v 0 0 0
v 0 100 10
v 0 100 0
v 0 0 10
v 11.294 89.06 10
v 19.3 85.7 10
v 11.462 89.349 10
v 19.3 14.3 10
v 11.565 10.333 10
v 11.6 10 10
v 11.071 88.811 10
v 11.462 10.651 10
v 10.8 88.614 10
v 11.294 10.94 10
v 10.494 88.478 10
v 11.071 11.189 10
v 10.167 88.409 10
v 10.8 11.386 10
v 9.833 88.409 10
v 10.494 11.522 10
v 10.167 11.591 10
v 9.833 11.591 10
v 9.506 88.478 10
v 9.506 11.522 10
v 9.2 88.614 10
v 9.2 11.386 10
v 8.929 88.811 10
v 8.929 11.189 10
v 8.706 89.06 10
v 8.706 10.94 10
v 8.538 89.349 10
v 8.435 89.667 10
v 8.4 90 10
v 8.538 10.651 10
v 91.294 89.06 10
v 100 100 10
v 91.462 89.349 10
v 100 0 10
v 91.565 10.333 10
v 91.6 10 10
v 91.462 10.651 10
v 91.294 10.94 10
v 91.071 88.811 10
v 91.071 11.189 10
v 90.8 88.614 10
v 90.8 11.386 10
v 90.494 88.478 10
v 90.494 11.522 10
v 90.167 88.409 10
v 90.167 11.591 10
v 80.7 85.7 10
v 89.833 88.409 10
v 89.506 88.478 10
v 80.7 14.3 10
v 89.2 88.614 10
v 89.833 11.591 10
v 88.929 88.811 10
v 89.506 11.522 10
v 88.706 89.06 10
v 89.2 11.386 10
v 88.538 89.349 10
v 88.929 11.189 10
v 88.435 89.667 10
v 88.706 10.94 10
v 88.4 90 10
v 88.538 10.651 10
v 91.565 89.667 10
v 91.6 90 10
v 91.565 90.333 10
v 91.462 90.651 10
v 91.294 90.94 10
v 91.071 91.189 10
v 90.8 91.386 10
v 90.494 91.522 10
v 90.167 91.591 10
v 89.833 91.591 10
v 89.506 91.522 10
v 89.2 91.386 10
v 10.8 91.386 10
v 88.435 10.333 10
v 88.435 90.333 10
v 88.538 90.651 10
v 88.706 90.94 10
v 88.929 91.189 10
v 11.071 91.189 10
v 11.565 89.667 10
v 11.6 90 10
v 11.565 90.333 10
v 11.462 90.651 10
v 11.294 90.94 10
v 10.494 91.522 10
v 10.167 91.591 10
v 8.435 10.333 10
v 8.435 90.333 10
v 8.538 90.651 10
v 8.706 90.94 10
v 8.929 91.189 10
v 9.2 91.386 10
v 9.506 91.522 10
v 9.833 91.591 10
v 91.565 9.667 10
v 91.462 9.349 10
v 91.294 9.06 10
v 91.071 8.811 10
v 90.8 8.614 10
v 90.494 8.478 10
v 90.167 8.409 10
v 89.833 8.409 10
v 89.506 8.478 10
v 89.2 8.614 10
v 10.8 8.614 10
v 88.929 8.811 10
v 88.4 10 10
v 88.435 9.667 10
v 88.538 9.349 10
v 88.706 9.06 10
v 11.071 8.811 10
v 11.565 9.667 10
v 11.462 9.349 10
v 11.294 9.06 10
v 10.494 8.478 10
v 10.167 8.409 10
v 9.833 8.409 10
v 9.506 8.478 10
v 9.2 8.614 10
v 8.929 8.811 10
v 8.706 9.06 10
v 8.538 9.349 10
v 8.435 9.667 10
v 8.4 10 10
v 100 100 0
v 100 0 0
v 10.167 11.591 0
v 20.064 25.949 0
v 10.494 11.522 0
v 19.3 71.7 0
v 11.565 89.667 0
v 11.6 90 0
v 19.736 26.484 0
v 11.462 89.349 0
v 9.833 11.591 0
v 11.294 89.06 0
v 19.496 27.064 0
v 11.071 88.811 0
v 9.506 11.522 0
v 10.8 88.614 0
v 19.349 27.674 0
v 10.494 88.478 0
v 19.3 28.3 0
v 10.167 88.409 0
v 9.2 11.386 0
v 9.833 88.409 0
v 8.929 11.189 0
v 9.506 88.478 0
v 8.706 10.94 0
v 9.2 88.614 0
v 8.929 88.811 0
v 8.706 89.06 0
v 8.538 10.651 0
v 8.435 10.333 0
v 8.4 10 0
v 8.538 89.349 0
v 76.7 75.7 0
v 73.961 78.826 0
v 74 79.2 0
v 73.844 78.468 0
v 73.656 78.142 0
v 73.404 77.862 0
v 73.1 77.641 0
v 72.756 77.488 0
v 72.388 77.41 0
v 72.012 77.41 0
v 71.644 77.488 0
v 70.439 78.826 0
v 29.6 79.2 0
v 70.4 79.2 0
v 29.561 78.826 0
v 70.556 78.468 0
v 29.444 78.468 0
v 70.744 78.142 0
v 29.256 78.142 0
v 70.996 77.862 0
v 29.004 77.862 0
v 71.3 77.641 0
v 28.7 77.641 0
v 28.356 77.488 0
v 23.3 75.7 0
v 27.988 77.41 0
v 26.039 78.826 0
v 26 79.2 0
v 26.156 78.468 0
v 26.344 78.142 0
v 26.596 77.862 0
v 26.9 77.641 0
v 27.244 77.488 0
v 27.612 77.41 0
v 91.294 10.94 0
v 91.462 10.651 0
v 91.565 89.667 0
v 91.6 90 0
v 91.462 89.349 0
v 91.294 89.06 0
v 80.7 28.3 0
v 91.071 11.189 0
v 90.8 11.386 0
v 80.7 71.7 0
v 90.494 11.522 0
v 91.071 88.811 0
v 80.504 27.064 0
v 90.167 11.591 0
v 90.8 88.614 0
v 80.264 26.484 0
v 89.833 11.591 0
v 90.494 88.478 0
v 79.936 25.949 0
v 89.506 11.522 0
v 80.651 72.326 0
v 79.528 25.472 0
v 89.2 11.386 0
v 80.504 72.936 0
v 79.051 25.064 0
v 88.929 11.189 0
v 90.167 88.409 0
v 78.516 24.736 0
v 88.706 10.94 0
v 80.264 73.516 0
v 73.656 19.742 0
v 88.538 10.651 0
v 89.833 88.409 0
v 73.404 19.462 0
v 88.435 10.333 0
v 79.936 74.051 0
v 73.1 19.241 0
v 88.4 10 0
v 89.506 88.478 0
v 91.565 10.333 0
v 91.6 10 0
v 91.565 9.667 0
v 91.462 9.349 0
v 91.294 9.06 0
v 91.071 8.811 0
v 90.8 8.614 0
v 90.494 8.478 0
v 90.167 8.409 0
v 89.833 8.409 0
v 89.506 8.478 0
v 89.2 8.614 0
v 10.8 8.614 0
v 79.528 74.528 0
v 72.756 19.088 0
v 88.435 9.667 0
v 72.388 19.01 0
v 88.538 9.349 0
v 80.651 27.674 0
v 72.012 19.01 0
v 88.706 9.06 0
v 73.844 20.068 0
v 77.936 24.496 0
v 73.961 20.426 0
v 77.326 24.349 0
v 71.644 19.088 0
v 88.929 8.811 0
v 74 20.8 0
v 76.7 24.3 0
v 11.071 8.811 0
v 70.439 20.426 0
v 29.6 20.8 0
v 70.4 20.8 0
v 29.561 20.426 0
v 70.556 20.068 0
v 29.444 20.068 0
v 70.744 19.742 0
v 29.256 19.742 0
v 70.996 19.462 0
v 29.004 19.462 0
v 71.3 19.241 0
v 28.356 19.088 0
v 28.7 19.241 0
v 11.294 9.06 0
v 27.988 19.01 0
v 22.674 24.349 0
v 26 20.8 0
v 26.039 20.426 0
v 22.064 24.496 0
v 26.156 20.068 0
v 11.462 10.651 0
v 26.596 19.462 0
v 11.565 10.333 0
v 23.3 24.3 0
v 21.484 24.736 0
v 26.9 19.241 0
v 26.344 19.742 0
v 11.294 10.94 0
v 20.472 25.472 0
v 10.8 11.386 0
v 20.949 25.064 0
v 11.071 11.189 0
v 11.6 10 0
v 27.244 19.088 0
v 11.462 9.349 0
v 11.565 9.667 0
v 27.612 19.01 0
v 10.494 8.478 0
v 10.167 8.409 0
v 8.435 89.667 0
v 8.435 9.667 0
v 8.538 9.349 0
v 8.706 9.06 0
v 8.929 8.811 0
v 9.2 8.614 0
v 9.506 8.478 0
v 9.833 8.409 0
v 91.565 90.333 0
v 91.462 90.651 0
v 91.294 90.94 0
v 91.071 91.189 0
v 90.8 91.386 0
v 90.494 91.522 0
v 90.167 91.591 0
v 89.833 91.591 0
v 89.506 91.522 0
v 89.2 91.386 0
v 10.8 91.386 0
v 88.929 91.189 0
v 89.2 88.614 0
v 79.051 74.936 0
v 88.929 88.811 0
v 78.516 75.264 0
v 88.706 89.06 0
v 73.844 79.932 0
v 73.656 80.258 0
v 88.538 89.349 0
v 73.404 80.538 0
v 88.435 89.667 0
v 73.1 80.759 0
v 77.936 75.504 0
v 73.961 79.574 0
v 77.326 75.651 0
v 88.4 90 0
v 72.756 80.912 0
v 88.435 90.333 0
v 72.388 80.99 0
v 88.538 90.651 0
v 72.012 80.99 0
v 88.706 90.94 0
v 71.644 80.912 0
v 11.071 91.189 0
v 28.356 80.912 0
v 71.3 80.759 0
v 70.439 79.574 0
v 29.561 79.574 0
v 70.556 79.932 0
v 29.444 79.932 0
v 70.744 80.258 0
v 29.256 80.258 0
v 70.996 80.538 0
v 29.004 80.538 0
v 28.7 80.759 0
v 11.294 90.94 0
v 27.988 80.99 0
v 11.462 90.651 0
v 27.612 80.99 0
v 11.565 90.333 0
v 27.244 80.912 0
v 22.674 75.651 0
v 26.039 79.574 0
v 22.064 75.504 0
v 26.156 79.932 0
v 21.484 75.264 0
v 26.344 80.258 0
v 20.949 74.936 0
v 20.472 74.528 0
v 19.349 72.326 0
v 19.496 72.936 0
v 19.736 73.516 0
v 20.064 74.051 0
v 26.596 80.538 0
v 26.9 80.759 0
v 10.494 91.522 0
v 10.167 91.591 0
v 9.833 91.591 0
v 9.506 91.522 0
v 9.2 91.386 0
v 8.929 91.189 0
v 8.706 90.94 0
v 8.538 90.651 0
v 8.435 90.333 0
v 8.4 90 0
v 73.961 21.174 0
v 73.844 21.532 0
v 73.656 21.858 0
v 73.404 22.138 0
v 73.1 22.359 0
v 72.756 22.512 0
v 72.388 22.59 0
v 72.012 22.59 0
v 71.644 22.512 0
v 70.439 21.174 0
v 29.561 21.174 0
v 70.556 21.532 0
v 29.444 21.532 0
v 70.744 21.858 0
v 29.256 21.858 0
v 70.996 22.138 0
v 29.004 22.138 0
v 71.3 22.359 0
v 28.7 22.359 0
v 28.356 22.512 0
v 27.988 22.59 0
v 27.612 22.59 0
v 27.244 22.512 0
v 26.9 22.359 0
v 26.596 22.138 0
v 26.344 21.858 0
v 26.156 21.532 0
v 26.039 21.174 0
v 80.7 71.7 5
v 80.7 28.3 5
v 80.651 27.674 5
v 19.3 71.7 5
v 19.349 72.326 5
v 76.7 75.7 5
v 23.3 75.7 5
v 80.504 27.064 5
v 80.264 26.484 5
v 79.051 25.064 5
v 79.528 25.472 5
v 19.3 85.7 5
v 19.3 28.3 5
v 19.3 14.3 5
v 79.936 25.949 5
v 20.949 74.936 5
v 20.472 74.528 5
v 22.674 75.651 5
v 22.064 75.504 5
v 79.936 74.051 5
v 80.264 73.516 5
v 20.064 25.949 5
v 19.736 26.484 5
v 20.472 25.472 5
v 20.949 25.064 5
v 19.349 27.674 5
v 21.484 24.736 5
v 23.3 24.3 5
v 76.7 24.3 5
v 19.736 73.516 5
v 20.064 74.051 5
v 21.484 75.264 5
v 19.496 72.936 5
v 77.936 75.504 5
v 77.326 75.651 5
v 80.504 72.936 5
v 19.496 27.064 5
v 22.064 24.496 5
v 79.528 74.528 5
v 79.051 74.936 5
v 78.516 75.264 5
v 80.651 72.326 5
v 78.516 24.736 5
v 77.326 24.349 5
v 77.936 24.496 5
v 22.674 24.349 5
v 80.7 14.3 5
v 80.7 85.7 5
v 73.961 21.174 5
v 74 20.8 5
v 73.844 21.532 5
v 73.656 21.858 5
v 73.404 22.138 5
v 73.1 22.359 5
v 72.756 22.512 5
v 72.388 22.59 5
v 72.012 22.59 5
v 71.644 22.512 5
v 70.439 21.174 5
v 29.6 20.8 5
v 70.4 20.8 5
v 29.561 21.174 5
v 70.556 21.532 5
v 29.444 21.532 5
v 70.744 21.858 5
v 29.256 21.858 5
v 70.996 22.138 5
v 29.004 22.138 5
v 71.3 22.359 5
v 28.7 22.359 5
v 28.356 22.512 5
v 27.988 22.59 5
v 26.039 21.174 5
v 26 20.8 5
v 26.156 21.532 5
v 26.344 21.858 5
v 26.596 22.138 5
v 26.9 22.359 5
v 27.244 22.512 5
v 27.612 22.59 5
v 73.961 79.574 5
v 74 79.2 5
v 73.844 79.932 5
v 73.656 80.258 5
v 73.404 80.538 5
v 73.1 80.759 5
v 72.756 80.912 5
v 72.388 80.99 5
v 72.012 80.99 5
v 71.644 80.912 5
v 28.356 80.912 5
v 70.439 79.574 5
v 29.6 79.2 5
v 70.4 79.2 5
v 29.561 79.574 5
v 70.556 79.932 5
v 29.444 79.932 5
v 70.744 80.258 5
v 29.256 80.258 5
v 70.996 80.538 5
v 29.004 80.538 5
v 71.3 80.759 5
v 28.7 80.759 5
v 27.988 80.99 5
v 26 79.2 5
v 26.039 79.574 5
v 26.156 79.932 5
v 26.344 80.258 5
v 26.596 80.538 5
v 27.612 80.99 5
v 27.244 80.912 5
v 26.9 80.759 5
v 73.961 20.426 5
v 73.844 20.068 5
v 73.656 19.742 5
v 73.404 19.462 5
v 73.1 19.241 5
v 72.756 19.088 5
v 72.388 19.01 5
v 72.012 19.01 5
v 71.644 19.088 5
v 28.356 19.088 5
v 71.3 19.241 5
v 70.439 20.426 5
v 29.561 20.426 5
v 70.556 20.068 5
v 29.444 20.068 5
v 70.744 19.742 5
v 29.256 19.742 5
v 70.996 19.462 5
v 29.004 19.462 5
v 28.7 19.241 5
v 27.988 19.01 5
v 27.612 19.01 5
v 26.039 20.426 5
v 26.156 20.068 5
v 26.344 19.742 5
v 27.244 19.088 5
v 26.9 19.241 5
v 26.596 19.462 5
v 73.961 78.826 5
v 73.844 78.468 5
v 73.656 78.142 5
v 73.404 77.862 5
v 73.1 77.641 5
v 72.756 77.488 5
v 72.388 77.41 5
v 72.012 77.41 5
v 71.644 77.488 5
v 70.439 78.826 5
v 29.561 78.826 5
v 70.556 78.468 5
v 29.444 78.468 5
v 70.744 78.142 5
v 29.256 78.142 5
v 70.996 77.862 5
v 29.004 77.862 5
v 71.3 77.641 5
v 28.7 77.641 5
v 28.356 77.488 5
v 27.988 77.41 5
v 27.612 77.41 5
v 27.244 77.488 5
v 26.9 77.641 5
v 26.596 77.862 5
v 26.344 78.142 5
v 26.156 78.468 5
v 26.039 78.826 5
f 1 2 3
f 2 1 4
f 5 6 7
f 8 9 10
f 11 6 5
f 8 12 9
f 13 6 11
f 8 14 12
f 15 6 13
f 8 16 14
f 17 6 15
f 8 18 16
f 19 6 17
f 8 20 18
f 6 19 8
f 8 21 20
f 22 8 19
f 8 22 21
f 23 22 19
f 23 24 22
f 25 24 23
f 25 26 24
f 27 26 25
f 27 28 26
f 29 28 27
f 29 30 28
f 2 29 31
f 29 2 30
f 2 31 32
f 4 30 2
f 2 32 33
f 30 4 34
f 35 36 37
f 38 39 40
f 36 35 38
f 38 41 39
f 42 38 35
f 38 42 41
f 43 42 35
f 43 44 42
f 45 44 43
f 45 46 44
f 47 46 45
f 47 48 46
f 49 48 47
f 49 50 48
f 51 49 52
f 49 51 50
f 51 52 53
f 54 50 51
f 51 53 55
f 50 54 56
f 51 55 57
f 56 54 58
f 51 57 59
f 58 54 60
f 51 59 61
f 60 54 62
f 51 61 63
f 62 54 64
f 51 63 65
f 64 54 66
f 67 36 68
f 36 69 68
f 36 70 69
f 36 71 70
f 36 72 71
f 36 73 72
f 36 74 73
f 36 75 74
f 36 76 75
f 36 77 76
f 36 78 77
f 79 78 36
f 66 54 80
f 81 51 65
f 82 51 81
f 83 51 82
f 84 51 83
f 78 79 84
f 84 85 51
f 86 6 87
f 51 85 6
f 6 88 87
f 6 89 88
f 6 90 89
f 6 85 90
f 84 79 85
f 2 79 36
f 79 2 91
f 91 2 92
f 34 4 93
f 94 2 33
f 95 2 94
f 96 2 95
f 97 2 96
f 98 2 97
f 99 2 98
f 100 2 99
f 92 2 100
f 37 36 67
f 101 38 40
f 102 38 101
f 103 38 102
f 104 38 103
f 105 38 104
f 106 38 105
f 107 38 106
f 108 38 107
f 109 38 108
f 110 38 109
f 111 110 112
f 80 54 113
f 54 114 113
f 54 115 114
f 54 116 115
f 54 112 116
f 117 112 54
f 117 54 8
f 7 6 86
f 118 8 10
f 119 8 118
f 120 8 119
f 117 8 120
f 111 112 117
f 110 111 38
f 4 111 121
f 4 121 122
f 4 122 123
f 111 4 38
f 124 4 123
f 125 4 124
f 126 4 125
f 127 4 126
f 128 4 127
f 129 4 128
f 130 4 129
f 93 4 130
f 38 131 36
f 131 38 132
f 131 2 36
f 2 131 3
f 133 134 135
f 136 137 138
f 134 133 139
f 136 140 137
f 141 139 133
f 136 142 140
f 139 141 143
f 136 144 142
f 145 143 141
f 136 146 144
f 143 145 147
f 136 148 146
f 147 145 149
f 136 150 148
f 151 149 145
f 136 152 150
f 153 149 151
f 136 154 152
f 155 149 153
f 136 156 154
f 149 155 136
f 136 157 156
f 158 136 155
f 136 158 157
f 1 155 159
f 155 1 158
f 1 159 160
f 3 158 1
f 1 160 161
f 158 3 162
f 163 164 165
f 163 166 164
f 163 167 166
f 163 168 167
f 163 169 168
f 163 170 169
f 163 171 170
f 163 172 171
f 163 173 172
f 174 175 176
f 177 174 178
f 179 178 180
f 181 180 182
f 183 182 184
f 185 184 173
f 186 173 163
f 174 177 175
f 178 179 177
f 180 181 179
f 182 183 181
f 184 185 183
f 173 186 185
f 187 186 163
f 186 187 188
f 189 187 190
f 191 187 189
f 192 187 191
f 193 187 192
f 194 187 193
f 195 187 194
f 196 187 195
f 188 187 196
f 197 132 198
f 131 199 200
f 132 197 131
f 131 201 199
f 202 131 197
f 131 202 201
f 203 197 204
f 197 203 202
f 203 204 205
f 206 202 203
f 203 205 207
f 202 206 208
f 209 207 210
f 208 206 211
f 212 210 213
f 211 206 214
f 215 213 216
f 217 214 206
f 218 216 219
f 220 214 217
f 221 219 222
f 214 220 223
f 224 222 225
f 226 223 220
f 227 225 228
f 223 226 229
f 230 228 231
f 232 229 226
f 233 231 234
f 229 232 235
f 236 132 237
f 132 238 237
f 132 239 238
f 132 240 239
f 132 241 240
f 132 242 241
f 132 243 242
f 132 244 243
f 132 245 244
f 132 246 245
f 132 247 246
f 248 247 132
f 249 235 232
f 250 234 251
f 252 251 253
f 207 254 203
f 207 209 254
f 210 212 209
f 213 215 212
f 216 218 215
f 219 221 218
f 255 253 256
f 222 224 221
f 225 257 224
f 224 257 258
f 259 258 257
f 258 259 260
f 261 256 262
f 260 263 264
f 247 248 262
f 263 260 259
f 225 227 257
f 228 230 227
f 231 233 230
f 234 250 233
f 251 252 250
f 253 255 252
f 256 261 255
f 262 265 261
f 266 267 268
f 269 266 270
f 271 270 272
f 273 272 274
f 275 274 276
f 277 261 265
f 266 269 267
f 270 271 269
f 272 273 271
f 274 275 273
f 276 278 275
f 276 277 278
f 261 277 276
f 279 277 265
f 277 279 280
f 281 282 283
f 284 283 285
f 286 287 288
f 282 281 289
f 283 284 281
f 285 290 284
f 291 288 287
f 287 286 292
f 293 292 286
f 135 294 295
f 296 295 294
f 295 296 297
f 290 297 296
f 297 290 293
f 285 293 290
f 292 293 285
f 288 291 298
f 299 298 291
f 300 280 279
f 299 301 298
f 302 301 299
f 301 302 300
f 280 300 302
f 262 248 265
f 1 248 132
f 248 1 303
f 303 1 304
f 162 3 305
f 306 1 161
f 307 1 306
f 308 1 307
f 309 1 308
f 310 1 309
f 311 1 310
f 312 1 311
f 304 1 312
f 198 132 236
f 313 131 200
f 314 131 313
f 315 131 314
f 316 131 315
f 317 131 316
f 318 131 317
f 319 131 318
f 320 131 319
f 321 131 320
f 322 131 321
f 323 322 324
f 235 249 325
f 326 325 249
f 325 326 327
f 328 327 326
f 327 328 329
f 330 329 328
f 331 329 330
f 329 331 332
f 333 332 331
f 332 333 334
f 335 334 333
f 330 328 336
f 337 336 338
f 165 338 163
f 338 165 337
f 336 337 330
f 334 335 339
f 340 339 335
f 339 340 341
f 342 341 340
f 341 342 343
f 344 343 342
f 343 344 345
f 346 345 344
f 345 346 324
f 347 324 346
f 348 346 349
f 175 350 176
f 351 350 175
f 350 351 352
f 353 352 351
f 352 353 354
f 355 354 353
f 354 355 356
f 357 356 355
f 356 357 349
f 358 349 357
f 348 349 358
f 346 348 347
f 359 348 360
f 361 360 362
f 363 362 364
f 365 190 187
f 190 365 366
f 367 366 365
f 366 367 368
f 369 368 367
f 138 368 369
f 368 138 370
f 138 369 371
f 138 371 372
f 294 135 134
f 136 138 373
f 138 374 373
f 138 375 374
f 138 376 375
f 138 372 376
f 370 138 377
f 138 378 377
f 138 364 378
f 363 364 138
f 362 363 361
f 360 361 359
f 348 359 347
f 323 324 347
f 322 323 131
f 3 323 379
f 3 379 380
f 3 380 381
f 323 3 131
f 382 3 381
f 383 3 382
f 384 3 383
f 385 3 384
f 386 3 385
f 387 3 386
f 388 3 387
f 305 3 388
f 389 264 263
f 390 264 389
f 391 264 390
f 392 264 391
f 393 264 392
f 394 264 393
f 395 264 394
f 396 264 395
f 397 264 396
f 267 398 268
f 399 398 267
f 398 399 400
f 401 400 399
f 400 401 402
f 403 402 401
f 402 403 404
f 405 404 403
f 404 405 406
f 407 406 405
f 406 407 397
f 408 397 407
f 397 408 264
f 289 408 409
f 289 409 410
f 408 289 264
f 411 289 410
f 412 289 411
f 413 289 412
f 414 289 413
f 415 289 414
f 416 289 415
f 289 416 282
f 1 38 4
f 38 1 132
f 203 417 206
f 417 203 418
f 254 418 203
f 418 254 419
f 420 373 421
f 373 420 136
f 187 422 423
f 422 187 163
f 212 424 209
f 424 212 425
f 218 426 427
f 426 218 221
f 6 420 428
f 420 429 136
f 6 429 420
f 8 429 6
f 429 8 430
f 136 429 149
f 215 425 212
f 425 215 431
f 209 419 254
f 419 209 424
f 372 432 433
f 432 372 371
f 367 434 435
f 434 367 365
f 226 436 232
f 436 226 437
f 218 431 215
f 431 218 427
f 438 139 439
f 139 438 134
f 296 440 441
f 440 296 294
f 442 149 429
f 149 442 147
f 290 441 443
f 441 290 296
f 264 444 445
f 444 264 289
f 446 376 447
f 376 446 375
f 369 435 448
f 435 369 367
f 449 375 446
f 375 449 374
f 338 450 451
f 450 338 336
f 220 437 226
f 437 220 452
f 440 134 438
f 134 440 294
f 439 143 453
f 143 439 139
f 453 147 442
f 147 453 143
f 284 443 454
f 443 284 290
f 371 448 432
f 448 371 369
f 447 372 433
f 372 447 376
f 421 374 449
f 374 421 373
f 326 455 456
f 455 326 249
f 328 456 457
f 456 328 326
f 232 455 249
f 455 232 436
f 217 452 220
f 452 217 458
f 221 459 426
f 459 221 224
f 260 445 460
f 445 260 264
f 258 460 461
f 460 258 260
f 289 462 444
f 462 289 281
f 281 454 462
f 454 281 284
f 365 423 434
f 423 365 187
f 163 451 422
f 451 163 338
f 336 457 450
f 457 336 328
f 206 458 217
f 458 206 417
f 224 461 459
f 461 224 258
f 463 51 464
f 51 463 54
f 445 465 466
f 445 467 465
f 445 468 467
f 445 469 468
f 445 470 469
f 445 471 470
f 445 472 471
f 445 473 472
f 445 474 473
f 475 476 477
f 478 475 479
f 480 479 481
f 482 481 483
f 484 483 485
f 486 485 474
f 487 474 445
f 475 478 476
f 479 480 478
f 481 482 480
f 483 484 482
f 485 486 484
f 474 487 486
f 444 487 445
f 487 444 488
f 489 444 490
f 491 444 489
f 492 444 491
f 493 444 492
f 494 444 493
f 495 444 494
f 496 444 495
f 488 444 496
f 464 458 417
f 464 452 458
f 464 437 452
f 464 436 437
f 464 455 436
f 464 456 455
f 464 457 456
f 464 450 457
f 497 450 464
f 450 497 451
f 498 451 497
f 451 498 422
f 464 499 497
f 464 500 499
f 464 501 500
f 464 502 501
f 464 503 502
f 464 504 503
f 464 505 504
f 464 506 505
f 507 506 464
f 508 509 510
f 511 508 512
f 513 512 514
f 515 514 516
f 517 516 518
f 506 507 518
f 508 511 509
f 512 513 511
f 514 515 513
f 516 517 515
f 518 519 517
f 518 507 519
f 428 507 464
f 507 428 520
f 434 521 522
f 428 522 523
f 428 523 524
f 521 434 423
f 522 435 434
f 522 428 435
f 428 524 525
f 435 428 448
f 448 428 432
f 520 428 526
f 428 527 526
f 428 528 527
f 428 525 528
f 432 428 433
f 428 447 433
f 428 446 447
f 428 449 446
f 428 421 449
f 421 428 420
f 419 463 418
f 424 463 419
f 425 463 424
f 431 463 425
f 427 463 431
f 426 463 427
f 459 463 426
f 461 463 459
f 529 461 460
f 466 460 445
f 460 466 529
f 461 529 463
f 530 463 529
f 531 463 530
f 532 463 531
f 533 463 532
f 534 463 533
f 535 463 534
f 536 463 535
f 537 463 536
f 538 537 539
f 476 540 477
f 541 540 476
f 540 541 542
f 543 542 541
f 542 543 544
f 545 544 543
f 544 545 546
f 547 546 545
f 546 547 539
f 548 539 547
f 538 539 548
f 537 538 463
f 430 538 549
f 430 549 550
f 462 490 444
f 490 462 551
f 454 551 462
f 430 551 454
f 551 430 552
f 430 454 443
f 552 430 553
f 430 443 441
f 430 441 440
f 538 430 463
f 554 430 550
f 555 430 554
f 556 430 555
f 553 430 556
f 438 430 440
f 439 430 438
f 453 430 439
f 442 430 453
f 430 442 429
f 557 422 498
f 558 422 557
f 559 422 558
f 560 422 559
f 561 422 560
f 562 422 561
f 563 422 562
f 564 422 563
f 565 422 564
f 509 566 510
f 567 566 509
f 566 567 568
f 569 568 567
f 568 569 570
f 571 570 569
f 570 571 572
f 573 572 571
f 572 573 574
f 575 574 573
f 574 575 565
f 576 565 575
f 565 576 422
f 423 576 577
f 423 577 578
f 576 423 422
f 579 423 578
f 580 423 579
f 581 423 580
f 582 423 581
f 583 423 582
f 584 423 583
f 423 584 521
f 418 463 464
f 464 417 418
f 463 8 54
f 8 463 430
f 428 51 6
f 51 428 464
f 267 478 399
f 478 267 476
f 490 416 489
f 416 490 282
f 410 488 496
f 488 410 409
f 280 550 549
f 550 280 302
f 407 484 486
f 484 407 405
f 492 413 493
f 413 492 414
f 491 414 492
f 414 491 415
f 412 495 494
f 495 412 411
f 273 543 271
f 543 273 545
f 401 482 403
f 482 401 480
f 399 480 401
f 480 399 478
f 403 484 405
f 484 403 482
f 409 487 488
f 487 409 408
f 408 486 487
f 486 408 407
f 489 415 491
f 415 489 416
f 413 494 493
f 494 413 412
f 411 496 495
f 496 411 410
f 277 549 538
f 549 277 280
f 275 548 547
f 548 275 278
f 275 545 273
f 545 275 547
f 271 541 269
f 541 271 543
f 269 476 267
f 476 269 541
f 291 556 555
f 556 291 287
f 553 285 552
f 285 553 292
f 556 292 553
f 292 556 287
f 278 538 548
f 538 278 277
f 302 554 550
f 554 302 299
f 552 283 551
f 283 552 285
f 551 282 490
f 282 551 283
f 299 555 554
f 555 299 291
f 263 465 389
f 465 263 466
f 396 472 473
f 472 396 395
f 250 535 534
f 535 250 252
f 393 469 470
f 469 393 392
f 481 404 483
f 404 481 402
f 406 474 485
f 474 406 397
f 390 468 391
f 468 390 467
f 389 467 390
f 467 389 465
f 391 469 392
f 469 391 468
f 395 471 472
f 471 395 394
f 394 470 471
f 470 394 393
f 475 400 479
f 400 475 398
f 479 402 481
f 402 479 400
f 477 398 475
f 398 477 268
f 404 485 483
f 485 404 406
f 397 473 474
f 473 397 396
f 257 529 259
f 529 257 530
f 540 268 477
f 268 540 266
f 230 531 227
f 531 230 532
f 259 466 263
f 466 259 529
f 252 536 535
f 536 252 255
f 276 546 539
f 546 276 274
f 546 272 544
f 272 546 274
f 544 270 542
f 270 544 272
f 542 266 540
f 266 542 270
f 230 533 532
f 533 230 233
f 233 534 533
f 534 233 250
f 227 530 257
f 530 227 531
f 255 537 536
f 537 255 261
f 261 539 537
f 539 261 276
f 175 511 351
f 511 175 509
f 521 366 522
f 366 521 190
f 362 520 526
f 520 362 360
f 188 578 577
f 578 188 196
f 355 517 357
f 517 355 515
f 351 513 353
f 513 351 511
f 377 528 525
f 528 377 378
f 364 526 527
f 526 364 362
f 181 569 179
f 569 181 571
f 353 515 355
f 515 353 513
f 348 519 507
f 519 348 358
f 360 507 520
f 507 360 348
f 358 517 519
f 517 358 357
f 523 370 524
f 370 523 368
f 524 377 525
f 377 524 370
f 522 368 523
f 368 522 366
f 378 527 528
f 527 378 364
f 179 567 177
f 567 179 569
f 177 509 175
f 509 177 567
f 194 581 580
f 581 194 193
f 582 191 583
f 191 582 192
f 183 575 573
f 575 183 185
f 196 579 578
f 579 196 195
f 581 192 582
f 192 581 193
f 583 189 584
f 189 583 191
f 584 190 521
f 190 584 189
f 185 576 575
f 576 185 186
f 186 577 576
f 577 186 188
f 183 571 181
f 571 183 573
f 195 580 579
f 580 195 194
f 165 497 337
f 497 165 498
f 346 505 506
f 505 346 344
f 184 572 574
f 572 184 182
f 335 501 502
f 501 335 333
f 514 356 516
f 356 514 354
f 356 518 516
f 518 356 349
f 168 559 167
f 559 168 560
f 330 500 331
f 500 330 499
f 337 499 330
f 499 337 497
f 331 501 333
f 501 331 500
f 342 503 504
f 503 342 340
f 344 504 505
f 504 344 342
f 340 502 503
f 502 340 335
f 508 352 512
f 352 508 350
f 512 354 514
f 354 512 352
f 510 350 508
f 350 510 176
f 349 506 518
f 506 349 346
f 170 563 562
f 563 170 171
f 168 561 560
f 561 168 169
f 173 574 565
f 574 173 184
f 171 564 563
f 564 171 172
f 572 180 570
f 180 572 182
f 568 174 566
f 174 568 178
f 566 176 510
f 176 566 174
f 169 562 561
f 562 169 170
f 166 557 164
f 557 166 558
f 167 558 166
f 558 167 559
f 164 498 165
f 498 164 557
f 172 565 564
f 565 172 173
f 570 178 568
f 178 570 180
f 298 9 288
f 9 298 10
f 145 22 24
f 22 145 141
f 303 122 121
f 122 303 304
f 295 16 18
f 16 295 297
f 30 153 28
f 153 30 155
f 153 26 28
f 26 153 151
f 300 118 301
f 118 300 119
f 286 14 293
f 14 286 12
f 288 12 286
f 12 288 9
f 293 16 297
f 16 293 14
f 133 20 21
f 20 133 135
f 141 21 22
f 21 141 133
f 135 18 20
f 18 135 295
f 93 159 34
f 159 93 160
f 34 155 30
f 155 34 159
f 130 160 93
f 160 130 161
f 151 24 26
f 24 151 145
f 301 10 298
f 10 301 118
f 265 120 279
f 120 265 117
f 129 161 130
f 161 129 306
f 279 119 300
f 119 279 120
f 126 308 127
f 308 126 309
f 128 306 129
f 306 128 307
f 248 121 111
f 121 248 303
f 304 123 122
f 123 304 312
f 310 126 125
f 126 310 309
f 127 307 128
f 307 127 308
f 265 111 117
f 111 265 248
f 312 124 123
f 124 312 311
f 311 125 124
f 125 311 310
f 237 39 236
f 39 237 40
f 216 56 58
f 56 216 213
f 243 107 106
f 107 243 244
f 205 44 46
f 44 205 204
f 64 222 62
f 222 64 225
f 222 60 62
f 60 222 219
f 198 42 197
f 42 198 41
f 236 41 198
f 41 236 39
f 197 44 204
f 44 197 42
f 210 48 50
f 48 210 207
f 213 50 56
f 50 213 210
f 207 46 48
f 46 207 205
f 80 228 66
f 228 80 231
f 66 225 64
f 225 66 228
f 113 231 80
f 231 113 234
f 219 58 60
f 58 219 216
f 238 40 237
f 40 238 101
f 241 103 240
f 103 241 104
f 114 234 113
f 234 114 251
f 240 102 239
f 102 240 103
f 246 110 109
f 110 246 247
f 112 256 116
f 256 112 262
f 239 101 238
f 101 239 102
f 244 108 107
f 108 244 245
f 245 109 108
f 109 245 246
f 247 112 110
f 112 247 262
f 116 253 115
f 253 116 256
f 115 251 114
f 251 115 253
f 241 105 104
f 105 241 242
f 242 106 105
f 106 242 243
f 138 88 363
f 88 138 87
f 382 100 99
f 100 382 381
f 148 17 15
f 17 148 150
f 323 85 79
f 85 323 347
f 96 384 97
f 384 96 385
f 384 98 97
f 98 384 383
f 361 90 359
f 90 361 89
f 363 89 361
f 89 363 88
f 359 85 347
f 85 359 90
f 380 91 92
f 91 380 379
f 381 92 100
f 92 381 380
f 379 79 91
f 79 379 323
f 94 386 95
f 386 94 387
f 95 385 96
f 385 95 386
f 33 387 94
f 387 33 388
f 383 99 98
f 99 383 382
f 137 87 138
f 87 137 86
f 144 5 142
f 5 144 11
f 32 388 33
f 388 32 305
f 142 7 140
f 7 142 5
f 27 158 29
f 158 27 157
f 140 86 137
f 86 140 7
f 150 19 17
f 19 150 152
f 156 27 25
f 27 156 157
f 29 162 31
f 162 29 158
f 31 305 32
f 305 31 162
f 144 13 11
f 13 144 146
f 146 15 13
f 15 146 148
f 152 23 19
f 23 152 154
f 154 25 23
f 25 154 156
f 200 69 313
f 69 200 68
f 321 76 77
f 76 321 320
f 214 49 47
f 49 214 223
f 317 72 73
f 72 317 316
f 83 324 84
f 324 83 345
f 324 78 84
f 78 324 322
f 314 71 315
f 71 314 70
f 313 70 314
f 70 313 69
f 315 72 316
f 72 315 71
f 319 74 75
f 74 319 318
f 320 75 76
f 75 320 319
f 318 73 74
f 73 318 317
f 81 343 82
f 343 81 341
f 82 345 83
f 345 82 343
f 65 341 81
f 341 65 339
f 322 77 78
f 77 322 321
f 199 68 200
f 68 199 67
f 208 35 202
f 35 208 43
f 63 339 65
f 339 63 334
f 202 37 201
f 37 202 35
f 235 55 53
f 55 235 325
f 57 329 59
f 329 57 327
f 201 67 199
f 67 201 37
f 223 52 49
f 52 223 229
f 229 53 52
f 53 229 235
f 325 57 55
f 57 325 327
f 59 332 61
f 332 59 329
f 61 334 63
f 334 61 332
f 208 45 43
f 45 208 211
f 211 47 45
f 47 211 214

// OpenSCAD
// ==== Scanner parameters ====
scanner_w = 120;        // Width
scanner_h = 120;        // Height

plate_w = 100;        // Width
plate_h = 100;        // Height
plate_thick = 10;        // Plate thickness

//scanner_d = 100;         // Depth
tab_offset = 7;         // Distance from edge to tab center (estimate! Measure yours if you can)
tab_dia = 3.6;          // Mounting hole diameter (estimate! Use caliper if you have one)
mount_dia = 3.2;

ear_space = 20;

win_w = 61.4;             // Window width (measure the actual glass if possible)
win_h = 51.4;             // Window height (measure the actual glass if possible)
window_position_x = (plate_w - win_w) / 2;
window_position_y = ((plate_w - (win_h + ear_space)) / 2) + (ear_space / 2);

corner_radius = 4;      // <<<----- Set your desired corner radius here

inner_close = 3.5;
outer_close = 10;

difference() {
    // --- Main plate ---
    cube([plate_w, plate_h, plate_thick]);
    
    // --- Main plate with rounded corners using minkowski() ---
    translate([window_position_x + corner_radius, window_position_y + corner_radius, -1])
        minkowski() {
            cube([win_w - (2 * corner_radius), win_h - (2 * corner_radius), plate_thick + 2]);
            cylinder(r = corner_radius, h = plate_thick, $fn = 40);
        }
    
    // --- Cut 1 depth step ---
    translate([(plate_w - win_w) / 2, (plate_w - (win_h + ear_space)) / 2, 5])
       cube([win_w, win_h + ear_space, plate_thick]);
    
    // --- Mounting holes (4 inner) ---
    translate([window_position_x + 8.5, window_position_y - inner_close, -1])
        cylinder(d = tab_dia, h = plate_thick + 99, $fn = 30);
    translate([window_position_x + win_w  - 8.5, window_position_y - inner_close, -1])
        cylinder(d = tab_dia, h = plate_thick + 99, $fn = 30);
    translate([window_position_x + 8.5, window_position_y + win_h + inner_close, -1])
        cylinder(d = tab_dia, h = plate_thick + 99, $fn = 30);
    translate([window_position_x + win_w  - 8.5, window_position_y + win_h + inner_close, -1])
        cylinder(d = tab_dia, h = plate_thick + 99, $fn = 30);

    // --- Mounting holes (4 outer corners) ---
    translate([outer_close, outer_close, -1])
        cylinder(d = mount_dia, h = plate_thick + 99, $fn = 30);
    translate([plate_w - outer_close, outer_close, -1])
        cylinder(d = mount_dia, h = plate_thick + 99, $fn = 30);
    translate([outer_close, plate_w - outer_close, -1])
        cylinder(d = mount_dia, h = plate_thick + 99, $fn = 30);
    translate([plate_w - outer_close, plate_w - outer_close, -1])
        cylinder(d = mount_dia, h = plate_thick + 99, $fn = 30);
}
